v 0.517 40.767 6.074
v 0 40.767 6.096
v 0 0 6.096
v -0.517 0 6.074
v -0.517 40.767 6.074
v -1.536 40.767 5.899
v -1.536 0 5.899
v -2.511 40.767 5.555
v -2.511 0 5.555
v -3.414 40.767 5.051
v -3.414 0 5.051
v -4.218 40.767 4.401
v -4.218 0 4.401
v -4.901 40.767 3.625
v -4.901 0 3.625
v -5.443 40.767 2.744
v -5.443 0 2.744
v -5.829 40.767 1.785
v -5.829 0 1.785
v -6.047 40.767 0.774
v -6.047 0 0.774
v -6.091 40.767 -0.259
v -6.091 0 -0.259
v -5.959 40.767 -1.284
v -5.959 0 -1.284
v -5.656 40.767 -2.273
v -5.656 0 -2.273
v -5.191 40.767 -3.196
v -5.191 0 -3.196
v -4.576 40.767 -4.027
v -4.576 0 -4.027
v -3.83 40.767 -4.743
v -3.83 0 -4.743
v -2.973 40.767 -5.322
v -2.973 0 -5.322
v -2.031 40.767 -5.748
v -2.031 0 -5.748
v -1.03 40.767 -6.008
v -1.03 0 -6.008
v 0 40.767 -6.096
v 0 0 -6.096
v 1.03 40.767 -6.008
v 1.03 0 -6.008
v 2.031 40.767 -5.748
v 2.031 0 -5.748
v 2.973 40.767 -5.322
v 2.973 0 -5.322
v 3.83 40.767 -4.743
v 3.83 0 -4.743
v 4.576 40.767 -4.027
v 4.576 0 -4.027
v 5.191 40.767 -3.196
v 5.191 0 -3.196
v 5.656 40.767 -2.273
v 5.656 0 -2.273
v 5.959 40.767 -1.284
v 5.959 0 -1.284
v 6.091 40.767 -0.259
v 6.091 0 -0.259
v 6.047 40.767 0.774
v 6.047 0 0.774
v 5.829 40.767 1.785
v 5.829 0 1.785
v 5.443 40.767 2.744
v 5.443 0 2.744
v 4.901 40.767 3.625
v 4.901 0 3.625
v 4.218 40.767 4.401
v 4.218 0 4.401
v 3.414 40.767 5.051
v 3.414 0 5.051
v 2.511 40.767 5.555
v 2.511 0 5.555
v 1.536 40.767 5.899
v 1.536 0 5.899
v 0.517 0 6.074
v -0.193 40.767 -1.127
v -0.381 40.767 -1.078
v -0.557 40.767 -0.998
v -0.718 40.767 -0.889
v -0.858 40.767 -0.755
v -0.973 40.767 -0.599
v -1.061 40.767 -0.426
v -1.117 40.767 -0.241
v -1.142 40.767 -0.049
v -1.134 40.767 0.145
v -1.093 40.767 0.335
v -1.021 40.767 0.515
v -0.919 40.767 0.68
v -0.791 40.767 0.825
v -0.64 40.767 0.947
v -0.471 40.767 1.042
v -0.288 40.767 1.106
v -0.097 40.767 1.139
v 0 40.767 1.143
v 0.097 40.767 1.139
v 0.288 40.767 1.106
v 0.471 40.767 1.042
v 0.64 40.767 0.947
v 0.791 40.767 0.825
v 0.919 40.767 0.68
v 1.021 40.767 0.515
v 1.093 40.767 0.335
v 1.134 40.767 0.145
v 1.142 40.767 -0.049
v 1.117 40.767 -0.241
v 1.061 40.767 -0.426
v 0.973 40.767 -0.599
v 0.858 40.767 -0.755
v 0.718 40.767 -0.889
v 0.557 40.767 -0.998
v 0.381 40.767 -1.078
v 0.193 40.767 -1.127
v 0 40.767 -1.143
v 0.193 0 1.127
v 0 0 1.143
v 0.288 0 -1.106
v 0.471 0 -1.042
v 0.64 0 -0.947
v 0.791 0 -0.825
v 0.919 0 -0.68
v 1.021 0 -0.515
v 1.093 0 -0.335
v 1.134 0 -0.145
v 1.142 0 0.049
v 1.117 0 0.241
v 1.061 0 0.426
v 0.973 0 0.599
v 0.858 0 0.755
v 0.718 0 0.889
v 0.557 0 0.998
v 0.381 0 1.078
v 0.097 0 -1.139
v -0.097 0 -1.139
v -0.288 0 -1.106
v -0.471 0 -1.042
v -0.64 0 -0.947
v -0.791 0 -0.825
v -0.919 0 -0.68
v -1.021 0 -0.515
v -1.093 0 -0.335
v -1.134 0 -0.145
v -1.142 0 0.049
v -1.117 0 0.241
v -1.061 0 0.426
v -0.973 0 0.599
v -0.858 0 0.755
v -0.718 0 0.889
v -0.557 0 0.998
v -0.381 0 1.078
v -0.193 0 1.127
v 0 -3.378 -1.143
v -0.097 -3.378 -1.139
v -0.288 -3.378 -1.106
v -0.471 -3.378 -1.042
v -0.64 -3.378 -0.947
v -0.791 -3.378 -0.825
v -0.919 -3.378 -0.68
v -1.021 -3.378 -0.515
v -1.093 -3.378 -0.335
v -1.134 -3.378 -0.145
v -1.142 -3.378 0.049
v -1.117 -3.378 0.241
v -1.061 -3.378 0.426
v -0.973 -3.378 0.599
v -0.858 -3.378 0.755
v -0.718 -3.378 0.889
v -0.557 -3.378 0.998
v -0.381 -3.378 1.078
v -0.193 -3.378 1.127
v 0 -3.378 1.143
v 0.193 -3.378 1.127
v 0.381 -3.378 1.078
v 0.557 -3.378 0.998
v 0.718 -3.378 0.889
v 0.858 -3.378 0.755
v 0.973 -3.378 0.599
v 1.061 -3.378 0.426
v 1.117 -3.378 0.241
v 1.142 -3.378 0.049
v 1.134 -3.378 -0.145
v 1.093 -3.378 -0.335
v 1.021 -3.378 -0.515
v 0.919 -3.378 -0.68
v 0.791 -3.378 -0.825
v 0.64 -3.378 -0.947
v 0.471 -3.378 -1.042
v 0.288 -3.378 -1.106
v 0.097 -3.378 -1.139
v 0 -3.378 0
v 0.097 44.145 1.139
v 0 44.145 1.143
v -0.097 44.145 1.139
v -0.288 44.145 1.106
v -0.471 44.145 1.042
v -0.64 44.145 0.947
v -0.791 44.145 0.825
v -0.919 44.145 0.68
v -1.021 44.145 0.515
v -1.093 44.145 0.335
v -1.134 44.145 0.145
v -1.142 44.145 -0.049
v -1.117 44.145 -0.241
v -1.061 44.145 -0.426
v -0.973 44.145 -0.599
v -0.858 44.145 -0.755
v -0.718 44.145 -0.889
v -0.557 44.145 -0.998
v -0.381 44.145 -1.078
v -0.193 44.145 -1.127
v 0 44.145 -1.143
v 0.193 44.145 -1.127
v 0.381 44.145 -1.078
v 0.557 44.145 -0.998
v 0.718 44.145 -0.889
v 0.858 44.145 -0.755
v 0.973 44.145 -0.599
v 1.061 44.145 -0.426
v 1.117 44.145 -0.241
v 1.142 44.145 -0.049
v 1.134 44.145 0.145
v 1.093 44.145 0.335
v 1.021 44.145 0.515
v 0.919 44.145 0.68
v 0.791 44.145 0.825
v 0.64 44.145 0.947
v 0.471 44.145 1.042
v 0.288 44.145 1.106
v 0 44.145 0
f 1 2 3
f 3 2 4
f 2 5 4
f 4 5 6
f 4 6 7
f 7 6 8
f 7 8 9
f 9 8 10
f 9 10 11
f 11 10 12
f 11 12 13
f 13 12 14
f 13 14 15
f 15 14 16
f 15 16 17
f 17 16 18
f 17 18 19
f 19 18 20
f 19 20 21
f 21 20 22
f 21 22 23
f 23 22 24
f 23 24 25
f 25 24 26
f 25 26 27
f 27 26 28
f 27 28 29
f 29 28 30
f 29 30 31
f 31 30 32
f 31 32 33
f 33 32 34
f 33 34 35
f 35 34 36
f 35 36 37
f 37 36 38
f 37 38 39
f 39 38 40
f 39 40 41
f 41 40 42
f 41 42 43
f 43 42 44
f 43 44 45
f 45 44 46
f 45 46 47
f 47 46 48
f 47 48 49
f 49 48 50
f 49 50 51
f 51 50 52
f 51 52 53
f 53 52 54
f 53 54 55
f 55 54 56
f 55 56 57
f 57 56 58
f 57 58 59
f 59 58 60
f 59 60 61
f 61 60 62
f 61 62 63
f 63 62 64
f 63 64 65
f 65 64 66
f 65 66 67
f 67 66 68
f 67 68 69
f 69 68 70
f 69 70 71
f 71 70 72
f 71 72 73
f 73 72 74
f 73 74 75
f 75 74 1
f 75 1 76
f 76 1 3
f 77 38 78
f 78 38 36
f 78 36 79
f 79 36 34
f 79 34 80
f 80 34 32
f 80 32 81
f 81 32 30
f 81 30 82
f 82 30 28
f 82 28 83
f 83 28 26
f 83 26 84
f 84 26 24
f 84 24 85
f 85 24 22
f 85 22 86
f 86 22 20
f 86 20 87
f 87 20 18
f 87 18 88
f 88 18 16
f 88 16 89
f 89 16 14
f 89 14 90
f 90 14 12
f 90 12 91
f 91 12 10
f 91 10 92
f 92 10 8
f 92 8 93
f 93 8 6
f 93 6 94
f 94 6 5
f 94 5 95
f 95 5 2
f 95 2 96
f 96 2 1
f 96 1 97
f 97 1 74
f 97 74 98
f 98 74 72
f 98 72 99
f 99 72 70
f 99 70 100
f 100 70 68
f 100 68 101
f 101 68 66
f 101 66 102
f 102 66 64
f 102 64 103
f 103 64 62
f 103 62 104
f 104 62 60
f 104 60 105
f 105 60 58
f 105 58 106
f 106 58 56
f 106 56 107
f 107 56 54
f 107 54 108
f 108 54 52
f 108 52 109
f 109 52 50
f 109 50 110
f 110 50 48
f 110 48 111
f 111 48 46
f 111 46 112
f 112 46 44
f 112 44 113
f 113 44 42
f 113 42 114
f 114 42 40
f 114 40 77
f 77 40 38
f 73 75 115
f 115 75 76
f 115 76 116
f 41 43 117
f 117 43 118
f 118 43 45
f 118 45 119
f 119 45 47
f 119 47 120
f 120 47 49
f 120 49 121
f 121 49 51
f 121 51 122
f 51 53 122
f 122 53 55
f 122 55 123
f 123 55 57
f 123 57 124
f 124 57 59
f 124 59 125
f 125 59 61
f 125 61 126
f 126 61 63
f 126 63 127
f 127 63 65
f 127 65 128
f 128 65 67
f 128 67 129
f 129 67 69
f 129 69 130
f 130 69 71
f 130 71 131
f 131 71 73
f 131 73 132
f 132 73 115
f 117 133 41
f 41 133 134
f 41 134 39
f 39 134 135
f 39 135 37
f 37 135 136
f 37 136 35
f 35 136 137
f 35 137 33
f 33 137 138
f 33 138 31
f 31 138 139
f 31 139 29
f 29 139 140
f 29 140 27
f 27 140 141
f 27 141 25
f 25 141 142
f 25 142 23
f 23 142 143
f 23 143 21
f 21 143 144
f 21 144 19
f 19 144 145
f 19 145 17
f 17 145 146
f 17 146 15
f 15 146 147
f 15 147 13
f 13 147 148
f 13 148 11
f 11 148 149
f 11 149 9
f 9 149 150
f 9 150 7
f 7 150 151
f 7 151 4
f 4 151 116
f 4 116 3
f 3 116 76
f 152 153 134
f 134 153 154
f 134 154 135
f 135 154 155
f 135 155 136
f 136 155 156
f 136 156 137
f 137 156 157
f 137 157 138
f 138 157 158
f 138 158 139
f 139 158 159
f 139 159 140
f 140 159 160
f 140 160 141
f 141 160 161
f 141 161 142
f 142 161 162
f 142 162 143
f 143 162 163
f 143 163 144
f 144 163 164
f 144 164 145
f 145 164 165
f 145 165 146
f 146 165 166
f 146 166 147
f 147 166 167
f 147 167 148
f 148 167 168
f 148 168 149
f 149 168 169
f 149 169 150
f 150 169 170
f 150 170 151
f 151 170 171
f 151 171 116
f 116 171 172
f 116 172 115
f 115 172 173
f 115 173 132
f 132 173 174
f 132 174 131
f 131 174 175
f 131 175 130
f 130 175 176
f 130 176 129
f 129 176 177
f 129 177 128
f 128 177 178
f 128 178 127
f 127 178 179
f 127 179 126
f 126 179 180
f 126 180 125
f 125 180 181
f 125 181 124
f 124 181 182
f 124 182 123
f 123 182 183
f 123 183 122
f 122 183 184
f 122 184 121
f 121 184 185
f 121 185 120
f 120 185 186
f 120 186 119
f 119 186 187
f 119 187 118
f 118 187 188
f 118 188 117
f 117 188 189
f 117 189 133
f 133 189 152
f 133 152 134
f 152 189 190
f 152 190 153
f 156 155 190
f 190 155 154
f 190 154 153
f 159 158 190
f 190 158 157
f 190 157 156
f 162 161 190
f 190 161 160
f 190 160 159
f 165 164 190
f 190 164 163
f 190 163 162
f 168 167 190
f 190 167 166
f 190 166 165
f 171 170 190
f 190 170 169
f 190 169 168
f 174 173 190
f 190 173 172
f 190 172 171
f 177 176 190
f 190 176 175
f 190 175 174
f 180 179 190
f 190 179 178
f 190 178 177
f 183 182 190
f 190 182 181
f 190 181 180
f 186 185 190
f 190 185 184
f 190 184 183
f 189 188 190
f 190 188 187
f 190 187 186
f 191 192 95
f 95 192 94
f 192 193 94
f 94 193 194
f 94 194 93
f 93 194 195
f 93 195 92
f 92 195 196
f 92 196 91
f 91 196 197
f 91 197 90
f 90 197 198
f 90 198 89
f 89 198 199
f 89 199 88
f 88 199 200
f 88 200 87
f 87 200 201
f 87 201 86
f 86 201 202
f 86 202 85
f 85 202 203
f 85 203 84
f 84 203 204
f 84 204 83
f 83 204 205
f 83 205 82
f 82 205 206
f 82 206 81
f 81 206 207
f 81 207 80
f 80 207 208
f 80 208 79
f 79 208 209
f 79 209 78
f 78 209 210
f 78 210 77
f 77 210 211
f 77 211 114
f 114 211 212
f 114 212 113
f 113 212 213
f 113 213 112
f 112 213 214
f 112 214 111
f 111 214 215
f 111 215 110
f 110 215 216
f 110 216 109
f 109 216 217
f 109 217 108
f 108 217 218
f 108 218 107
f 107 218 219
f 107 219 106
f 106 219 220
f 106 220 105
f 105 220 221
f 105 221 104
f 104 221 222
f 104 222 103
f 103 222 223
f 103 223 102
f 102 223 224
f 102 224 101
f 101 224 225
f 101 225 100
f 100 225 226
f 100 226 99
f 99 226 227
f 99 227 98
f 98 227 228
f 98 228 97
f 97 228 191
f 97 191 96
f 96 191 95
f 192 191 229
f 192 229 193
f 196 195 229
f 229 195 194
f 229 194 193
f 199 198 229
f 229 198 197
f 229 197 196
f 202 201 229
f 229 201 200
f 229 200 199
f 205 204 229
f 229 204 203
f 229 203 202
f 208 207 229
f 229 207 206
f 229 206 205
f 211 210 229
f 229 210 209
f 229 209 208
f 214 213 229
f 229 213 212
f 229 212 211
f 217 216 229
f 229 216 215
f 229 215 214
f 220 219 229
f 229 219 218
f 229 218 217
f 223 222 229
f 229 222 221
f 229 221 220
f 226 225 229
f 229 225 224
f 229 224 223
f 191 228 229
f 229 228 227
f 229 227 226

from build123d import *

# Parameters (mm, degrees)
SKETCH1_R            = 6.096
BOSS_EXTRUDE8_DEPTH  = 40.767
SKETCH7_R            = 1.143
BOSS_EXTRUDE10_DEPTH = 3.3782
SKETCH8_R            = 1.143
BOSS_EXTRUDE12_DEPTH = 3.3782


with BuildPart() as part:
    # Sketch1 → Boss-Extrude8 (new body)
    with BuildSketch(Plane(origin=(0, 0, 0), x_dir=(1, 0, 0), z_dir=(0, 1, 0))):
        Circle(SKETCH1_R)
    extrude(amount=BOSS_EXTRUDE8_DEPTH)

    # Sketch7 → Boss-Extrude10 (add)
    with BuildSketch(Plane.XZ):
        Circle(SKETCH7_R)
    extrude(amount=BOSS_EXTRUDE10_DEPTH)

    # Sketch8 → Boss-Extrude12 (add)
    with BuildSketch(Plane(origin=(0, 40.767, 0), x_dir=(1, 0, 0), z_dir=(0, 1, 0))):
        Circle(SKETCH8_R)
    extrude(amount=BOSS_EXTRUDE12_DEPTH)


solid = part.part
